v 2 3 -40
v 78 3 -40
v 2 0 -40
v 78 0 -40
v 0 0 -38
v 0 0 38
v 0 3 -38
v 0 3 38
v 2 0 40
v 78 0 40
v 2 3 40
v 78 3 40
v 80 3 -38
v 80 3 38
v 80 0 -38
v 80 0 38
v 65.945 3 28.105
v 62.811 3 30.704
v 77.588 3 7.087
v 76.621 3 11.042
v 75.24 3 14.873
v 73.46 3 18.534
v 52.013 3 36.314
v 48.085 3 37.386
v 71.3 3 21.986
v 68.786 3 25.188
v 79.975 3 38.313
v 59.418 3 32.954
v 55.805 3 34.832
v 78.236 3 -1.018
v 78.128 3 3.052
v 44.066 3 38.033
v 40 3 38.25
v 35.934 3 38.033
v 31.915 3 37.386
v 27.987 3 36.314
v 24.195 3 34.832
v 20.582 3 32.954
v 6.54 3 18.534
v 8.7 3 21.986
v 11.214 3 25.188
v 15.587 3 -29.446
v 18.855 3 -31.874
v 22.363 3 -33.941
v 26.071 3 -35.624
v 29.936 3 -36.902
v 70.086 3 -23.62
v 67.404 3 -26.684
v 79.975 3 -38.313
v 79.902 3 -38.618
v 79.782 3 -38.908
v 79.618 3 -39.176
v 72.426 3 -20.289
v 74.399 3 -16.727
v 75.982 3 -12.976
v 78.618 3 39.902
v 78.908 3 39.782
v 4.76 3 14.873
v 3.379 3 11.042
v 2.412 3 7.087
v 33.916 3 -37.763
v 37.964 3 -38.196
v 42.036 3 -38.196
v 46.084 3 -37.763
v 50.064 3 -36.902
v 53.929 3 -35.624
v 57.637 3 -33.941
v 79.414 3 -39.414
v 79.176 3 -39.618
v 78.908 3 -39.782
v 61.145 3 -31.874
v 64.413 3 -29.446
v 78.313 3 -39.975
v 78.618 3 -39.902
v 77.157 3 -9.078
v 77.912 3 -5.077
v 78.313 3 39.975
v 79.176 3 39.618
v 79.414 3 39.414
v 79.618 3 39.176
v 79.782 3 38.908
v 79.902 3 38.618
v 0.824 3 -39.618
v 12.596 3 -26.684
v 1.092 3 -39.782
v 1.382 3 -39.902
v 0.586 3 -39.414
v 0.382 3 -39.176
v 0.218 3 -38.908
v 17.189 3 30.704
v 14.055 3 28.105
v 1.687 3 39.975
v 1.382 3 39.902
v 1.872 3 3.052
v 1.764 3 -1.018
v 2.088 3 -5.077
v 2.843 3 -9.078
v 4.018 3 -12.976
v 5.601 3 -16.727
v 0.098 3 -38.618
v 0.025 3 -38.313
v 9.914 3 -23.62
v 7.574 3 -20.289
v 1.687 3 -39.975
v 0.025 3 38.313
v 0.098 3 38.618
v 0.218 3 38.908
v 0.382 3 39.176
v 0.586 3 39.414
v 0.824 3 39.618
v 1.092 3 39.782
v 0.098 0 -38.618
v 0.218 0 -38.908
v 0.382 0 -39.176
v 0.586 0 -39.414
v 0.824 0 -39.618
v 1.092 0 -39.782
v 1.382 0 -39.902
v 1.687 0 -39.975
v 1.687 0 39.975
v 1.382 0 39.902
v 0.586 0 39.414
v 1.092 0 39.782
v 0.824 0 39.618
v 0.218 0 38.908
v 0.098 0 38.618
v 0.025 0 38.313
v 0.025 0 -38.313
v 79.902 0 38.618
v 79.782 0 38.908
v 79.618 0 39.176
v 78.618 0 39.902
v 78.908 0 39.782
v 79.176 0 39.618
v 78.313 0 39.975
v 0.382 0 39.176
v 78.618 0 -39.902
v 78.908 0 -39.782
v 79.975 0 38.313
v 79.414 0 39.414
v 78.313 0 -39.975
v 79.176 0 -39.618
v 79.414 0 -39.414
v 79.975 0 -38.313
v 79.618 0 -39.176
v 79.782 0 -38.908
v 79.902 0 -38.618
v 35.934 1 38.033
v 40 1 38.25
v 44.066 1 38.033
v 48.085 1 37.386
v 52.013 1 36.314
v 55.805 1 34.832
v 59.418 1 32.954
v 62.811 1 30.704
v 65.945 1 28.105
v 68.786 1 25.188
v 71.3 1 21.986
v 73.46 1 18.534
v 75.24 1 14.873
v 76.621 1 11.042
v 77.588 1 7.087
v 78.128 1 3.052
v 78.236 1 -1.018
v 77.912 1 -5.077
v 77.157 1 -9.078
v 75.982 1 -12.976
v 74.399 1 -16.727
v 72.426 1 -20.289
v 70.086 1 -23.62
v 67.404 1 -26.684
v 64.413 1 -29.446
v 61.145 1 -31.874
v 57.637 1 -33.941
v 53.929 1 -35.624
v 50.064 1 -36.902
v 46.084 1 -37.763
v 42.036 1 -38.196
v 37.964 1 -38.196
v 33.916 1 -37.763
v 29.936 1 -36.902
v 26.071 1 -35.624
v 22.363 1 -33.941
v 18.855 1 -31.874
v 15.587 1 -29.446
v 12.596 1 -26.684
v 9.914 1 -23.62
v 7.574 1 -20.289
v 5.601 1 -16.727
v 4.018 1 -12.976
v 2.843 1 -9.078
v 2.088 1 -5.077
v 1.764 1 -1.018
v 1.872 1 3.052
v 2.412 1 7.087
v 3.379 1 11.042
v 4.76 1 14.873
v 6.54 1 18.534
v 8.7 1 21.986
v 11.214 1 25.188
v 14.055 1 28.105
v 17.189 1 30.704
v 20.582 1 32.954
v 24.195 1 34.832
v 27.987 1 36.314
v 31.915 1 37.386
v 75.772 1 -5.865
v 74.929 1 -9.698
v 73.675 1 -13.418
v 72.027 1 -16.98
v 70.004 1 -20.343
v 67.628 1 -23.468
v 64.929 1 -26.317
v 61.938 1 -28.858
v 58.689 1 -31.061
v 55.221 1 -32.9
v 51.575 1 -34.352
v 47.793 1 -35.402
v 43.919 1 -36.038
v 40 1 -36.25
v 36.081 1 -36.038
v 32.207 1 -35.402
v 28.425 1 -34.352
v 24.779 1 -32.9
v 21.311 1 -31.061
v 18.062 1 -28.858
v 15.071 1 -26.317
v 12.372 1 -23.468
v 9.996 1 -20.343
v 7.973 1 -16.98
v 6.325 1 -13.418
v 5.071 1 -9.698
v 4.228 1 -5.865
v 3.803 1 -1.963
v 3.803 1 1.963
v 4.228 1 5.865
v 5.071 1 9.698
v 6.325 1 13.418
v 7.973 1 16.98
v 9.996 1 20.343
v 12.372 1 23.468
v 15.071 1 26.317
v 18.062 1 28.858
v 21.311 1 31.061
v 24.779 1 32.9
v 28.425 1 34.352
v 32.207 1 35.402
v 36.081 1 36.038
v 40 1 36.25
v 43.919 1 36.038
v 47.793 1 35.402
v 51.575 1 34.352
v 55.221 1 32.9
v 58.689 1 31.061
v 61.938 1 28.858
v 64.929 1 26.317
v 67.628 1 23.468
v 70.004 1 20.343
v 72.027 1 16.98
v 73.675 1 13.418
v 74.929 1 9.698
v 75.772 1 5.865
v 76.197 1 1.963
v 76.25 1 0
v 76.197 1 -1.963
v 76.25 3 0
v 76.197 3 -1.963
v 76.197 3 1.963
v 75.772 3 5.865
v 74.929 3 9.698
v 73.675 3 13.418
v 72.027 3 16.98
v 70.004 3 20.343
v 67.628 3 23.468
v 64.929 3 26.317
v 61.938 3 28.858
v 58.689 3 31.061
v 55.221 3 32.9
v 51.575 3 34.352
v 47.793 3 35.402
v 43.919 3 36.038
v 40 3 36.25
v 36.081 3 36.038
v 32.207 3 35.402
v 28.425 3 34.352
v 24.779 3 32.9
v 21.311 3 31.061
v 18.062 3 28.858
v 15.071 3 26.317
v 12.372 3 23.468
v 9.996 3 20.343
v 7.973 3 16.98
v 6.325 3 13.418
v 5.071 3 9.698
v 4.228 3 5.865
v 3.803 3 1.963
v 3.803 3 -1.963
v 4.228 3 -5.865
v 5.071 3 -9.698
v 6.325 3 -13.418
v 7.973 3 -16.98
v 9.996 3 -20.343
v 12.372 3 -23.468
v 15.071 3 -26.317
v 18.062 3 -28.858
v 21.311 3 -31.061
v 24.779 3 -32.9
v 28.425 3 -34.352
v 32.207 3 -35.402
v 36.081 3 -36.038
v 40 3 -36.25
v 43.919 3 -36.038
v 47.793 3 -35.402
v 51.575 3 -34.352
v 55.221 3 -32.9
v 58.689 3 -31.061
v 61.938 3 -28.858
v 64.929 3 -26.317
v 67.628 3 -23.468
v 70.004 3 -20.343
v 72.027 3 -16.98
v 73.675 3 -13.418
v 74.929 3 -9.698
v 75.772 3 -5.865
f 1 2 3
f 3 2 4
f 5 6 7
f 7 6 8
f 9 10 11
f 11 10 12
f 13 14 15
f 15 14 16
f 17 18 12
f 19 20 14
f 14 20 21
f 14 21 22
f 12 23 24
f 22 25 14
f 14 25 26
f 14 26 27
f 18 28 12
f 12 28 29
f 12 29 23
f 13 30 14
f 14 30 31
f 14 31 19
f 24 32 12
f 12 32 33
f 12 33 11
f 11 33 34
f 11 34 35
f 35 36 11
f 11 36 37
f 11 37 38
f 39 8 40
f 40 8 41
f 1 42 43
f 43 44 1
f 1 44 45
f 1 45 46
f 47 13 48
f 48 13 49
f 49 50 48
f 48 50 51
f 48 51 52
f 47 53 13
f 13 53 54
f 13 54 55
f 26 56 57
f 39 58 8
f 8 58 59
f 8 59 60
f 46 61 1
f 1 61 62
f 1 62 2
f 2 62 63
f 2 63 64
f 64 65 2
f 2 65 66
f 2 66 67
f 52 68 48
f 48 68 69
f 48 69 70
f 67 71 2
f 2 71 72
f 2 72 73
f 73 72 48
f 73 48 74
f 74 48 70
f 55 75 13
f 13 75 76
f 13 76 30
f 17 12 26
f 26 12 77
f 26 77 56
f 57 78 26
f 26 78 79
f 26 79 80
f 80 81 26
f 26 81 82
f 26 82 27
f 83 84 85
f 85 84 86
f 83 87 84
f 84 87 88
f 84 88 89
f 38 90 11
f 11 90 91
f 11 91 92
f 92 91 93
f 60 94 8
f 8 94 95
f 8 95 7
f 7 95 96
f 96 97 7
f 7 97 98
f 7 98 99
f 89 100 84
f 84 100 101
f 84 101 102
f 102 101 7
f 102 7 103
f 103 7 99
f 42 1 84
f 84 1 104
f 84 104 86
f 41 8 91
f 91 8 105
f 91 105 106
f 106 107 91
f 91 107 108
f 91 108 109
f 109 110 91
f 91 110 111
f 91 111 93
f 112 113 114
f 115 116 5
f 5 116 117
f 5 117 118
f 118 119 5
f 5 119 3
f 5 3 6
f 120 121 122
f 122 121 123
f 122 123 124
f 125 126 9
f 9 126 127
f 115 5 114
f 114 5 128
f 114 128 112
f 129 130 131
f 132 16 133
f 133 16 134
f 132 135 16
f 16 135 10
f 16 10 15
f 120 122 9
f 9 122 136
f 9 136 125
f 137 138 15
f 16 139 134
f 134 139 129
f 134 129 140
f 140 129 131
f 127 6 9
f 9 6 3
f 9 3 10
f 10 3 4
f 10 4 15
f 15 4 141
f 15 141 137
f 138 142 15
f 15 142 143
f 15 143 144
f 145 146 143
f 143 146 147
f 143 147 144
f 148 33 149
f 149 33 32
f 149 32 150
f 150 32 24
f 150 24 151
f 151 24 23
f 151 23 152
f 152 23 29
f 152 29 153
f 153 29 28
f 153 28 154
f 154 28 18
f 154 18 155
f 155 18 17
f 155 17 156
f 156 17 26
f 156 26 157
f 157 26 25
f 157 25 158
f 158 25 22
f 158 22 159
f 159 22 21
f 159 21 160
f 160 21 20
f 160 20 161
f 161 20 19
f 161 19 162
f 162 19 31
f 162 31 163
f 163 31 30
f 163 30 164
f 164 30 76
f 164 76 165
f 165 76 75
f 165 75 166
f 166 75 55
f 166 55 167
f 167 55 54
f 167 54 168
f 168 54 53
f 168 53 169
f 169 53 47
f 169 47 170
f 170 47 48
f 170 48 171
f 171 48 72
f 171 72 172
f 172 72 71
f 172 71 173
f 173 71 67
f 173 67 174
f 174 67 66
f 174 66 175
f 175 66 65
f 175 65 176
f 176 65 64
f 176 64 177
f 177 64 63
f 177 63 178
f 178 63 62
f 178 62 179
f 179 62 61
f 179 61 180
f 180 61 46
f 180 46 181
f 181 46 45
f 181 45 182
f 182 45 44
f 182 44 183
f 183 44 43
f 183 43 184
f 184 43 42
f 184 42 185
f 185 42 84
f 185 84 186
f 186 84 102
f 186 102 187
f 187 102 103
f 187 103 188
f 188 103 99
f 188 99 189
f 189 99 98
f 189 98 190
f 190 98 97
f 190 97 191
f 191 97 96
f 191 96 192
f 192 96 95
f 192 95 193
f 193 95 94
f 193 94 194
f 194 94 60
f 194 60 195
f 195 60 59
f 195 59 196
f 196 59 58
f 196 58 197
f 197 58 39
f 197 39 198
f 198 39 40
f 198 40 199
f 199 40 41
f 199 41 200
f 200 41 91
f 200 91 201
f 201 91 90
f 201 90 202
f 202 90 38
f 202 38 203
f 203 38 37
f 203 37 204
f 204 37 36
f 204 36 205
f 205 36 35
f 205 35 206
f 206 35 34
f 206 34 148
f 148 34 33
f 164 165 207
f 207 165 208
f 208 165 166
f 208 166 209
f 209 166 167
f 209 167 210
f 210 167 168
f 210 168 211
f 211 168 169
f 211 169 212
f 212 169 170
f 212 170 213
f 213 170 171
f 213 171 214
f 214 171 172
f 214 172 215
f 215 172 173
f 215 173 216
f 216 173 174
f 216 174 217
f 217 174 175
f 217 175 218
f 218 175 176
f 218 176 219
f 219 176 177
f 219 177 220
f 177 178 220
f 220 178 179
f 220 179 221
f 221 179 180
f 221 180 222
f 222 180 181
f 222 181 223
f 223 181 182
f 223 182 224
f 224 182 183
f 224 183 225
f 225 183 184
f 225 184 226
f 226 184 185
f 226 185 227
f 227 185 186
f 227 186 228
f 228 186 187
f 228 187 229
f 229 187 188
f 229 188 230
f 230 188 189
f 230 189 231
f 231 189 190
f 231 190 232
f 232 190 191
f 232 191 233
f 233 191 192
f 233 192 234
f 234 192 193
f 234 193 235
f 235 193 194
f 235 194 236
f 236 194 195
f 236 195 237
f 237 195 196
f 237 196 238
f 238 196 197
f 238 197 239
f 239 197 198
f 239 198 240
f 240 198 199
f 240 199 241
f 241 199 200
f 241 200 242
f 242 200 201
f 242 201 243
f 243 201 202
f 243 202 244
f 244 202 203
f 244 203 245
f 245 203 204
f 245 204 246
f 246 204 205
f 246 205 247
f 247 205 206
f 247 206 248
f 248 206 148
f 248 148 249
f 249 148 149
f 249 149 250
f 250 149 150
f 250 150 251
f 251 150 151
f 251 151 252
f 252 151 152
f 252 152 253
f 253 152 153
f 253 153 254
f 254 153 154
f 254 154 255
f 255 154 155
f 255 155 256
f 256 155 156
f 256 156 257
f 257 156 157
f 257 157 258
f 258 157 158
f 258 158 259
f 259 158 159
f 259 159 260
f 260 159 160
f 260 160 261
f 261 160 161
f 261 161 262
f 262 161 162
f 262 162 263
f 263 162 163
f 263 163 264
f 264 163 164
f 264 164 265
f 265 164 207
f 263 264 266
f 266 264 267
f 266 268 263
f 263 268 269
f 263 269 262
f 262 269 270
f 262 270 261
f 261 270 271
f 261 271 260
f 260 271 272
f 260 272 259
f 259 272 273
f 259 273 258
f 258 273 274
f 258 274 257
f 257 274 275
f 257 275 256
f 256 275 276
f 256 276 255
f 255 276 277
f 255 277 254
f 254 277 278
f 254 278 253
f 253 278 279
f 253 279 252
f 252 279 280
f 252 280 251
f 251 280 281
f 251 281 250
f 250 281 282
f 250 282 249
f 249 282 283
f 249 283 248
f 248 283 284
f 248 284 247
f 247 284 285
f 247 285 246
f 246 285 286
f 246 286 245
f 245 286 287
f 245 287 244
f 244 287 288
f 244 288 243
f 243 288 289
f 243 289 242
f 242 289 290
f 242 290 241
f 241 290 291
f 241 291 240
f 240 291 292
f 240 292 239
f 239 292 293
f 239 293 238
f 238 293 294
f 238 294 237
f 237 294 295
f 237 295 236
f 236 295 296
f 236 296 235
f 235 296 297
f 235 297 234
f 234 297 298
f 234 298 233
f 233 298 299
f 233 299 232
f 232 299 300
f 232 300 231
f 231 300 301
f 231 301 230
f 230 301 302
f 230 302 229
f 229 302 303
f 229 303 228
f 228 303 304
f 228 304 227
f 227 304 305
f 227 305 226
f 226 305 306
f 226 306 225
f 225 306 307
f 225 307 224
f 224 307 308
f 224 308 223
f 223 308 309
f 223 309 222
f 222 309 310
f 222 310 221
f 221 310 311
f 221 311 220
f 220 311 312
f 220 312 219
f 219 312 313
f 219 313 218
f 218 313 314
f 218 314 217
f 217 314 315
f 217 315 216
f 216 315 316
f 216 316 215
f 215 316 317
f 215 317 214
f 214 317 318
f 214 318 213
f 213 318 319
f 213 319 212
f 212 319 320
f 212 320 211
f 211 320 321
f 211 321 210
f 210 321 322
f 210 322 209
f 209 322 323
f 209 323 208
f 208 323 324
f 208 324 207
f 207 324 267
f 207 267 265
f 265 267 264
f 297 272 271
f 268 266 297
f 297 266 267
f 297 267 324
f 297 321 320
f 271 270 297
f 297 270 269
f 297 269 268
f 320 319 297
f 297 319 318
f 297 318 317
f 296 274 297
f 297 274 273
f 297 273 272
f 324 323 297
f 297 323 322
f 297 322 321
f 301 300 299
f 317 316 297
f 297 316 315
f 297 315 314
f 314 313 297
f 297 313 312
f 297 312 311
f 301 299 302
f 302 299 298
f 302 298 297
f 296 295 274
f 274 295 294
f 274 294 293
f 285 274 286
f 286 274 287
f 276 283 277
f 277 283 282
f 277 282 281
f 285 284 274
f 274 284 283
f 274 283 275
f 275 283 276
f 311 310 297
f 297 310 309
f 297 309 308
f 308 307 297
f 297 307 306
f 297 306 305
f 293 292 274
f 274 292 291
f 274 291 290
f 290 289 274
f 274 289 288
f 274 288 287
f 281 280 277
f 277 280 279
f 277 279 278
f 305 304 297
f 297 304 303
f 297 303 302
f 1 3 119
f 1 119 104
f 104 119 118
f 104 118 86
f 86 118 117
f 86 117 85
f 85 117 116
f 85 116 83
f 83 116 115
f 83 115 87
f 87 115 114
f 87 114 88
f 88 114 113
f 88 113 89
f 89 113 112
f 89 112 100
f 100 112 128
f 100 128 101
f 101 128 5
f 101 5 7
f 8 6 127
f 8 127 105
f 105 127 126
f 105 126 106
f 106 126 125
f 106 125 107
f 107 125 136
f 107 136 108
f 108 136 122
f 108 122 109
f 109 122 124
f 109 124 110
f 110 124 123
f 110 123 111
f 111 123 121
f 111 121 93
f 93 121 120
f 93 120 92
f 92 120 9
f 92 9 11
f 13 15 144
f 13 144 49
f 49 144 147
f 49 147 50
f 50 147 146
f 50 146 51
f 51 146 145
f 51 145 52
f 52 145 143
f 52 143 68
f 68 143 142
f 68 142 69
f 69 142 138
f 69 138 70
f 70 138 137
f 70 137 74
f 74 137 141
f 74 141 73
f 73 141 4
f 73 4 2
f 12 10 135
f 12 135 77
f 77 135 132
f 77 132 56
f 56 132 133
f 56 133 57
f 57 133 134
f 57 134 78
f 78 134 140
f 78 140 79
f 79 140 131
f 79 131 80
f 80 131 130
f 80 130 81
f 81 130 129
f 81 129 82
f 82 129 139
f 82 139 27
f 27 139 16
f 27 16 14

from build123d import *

# Parameters (mm, degrees)
SKETCH1_W               = 80
SKETCH1_H               = 80
BOSS_EXTRUDE1_DEPTH     = 3
SKETCH3_R               = 38.25
SKETCH3_R_2             = 36.25
CUT_EXTRUDE_THIN1_DEPTH = 2
FILLET1_R               = 2


with BuildPart() as part:
    # Sketch1 → Boss-Extrude1 (new body)
    with BuildSketch(Plane(origin=(0, 0, 0), x_dir=(1, 0, 0), z_dir=(0, 1, 0))):
        with Locations((40, 0)):
            Rectangle(SKETCH1_W, SKETCH1_H)
    extrude(amount=BOSS_EXTRUDE1_DEPTH)

    # Sketch3 → Cut-Extrude-Thin1 (cut)
    with BuildSketch(Plane(origin=(0, 3, 0), x_dir=(1, 0, 0), z_dir=(0, 1, 0))):
        with Locations((40, 0)):
            Circle(SKETCH3_R)
        with Locations((40, 0)):
            Circle(SKETCH3_R_2, mode=Mode.SUBTRACT)
    extrude(amount=-CUT_EXTRUDE_THIN1_DEPTH, mode=Mode.SUBTRACT)

    # Fillet1
    fillet1_edges = [part.edges().sort_by_distance(p)[0] for p in [
        (80, 1.5, -40),
        (80, 1.5, 40),
        (0, 1.5, 40),
        (0, 1.5, -40),
    ]]
    fillet(fillet1_edges, radius=FILLET1_R)


solid = part.part
